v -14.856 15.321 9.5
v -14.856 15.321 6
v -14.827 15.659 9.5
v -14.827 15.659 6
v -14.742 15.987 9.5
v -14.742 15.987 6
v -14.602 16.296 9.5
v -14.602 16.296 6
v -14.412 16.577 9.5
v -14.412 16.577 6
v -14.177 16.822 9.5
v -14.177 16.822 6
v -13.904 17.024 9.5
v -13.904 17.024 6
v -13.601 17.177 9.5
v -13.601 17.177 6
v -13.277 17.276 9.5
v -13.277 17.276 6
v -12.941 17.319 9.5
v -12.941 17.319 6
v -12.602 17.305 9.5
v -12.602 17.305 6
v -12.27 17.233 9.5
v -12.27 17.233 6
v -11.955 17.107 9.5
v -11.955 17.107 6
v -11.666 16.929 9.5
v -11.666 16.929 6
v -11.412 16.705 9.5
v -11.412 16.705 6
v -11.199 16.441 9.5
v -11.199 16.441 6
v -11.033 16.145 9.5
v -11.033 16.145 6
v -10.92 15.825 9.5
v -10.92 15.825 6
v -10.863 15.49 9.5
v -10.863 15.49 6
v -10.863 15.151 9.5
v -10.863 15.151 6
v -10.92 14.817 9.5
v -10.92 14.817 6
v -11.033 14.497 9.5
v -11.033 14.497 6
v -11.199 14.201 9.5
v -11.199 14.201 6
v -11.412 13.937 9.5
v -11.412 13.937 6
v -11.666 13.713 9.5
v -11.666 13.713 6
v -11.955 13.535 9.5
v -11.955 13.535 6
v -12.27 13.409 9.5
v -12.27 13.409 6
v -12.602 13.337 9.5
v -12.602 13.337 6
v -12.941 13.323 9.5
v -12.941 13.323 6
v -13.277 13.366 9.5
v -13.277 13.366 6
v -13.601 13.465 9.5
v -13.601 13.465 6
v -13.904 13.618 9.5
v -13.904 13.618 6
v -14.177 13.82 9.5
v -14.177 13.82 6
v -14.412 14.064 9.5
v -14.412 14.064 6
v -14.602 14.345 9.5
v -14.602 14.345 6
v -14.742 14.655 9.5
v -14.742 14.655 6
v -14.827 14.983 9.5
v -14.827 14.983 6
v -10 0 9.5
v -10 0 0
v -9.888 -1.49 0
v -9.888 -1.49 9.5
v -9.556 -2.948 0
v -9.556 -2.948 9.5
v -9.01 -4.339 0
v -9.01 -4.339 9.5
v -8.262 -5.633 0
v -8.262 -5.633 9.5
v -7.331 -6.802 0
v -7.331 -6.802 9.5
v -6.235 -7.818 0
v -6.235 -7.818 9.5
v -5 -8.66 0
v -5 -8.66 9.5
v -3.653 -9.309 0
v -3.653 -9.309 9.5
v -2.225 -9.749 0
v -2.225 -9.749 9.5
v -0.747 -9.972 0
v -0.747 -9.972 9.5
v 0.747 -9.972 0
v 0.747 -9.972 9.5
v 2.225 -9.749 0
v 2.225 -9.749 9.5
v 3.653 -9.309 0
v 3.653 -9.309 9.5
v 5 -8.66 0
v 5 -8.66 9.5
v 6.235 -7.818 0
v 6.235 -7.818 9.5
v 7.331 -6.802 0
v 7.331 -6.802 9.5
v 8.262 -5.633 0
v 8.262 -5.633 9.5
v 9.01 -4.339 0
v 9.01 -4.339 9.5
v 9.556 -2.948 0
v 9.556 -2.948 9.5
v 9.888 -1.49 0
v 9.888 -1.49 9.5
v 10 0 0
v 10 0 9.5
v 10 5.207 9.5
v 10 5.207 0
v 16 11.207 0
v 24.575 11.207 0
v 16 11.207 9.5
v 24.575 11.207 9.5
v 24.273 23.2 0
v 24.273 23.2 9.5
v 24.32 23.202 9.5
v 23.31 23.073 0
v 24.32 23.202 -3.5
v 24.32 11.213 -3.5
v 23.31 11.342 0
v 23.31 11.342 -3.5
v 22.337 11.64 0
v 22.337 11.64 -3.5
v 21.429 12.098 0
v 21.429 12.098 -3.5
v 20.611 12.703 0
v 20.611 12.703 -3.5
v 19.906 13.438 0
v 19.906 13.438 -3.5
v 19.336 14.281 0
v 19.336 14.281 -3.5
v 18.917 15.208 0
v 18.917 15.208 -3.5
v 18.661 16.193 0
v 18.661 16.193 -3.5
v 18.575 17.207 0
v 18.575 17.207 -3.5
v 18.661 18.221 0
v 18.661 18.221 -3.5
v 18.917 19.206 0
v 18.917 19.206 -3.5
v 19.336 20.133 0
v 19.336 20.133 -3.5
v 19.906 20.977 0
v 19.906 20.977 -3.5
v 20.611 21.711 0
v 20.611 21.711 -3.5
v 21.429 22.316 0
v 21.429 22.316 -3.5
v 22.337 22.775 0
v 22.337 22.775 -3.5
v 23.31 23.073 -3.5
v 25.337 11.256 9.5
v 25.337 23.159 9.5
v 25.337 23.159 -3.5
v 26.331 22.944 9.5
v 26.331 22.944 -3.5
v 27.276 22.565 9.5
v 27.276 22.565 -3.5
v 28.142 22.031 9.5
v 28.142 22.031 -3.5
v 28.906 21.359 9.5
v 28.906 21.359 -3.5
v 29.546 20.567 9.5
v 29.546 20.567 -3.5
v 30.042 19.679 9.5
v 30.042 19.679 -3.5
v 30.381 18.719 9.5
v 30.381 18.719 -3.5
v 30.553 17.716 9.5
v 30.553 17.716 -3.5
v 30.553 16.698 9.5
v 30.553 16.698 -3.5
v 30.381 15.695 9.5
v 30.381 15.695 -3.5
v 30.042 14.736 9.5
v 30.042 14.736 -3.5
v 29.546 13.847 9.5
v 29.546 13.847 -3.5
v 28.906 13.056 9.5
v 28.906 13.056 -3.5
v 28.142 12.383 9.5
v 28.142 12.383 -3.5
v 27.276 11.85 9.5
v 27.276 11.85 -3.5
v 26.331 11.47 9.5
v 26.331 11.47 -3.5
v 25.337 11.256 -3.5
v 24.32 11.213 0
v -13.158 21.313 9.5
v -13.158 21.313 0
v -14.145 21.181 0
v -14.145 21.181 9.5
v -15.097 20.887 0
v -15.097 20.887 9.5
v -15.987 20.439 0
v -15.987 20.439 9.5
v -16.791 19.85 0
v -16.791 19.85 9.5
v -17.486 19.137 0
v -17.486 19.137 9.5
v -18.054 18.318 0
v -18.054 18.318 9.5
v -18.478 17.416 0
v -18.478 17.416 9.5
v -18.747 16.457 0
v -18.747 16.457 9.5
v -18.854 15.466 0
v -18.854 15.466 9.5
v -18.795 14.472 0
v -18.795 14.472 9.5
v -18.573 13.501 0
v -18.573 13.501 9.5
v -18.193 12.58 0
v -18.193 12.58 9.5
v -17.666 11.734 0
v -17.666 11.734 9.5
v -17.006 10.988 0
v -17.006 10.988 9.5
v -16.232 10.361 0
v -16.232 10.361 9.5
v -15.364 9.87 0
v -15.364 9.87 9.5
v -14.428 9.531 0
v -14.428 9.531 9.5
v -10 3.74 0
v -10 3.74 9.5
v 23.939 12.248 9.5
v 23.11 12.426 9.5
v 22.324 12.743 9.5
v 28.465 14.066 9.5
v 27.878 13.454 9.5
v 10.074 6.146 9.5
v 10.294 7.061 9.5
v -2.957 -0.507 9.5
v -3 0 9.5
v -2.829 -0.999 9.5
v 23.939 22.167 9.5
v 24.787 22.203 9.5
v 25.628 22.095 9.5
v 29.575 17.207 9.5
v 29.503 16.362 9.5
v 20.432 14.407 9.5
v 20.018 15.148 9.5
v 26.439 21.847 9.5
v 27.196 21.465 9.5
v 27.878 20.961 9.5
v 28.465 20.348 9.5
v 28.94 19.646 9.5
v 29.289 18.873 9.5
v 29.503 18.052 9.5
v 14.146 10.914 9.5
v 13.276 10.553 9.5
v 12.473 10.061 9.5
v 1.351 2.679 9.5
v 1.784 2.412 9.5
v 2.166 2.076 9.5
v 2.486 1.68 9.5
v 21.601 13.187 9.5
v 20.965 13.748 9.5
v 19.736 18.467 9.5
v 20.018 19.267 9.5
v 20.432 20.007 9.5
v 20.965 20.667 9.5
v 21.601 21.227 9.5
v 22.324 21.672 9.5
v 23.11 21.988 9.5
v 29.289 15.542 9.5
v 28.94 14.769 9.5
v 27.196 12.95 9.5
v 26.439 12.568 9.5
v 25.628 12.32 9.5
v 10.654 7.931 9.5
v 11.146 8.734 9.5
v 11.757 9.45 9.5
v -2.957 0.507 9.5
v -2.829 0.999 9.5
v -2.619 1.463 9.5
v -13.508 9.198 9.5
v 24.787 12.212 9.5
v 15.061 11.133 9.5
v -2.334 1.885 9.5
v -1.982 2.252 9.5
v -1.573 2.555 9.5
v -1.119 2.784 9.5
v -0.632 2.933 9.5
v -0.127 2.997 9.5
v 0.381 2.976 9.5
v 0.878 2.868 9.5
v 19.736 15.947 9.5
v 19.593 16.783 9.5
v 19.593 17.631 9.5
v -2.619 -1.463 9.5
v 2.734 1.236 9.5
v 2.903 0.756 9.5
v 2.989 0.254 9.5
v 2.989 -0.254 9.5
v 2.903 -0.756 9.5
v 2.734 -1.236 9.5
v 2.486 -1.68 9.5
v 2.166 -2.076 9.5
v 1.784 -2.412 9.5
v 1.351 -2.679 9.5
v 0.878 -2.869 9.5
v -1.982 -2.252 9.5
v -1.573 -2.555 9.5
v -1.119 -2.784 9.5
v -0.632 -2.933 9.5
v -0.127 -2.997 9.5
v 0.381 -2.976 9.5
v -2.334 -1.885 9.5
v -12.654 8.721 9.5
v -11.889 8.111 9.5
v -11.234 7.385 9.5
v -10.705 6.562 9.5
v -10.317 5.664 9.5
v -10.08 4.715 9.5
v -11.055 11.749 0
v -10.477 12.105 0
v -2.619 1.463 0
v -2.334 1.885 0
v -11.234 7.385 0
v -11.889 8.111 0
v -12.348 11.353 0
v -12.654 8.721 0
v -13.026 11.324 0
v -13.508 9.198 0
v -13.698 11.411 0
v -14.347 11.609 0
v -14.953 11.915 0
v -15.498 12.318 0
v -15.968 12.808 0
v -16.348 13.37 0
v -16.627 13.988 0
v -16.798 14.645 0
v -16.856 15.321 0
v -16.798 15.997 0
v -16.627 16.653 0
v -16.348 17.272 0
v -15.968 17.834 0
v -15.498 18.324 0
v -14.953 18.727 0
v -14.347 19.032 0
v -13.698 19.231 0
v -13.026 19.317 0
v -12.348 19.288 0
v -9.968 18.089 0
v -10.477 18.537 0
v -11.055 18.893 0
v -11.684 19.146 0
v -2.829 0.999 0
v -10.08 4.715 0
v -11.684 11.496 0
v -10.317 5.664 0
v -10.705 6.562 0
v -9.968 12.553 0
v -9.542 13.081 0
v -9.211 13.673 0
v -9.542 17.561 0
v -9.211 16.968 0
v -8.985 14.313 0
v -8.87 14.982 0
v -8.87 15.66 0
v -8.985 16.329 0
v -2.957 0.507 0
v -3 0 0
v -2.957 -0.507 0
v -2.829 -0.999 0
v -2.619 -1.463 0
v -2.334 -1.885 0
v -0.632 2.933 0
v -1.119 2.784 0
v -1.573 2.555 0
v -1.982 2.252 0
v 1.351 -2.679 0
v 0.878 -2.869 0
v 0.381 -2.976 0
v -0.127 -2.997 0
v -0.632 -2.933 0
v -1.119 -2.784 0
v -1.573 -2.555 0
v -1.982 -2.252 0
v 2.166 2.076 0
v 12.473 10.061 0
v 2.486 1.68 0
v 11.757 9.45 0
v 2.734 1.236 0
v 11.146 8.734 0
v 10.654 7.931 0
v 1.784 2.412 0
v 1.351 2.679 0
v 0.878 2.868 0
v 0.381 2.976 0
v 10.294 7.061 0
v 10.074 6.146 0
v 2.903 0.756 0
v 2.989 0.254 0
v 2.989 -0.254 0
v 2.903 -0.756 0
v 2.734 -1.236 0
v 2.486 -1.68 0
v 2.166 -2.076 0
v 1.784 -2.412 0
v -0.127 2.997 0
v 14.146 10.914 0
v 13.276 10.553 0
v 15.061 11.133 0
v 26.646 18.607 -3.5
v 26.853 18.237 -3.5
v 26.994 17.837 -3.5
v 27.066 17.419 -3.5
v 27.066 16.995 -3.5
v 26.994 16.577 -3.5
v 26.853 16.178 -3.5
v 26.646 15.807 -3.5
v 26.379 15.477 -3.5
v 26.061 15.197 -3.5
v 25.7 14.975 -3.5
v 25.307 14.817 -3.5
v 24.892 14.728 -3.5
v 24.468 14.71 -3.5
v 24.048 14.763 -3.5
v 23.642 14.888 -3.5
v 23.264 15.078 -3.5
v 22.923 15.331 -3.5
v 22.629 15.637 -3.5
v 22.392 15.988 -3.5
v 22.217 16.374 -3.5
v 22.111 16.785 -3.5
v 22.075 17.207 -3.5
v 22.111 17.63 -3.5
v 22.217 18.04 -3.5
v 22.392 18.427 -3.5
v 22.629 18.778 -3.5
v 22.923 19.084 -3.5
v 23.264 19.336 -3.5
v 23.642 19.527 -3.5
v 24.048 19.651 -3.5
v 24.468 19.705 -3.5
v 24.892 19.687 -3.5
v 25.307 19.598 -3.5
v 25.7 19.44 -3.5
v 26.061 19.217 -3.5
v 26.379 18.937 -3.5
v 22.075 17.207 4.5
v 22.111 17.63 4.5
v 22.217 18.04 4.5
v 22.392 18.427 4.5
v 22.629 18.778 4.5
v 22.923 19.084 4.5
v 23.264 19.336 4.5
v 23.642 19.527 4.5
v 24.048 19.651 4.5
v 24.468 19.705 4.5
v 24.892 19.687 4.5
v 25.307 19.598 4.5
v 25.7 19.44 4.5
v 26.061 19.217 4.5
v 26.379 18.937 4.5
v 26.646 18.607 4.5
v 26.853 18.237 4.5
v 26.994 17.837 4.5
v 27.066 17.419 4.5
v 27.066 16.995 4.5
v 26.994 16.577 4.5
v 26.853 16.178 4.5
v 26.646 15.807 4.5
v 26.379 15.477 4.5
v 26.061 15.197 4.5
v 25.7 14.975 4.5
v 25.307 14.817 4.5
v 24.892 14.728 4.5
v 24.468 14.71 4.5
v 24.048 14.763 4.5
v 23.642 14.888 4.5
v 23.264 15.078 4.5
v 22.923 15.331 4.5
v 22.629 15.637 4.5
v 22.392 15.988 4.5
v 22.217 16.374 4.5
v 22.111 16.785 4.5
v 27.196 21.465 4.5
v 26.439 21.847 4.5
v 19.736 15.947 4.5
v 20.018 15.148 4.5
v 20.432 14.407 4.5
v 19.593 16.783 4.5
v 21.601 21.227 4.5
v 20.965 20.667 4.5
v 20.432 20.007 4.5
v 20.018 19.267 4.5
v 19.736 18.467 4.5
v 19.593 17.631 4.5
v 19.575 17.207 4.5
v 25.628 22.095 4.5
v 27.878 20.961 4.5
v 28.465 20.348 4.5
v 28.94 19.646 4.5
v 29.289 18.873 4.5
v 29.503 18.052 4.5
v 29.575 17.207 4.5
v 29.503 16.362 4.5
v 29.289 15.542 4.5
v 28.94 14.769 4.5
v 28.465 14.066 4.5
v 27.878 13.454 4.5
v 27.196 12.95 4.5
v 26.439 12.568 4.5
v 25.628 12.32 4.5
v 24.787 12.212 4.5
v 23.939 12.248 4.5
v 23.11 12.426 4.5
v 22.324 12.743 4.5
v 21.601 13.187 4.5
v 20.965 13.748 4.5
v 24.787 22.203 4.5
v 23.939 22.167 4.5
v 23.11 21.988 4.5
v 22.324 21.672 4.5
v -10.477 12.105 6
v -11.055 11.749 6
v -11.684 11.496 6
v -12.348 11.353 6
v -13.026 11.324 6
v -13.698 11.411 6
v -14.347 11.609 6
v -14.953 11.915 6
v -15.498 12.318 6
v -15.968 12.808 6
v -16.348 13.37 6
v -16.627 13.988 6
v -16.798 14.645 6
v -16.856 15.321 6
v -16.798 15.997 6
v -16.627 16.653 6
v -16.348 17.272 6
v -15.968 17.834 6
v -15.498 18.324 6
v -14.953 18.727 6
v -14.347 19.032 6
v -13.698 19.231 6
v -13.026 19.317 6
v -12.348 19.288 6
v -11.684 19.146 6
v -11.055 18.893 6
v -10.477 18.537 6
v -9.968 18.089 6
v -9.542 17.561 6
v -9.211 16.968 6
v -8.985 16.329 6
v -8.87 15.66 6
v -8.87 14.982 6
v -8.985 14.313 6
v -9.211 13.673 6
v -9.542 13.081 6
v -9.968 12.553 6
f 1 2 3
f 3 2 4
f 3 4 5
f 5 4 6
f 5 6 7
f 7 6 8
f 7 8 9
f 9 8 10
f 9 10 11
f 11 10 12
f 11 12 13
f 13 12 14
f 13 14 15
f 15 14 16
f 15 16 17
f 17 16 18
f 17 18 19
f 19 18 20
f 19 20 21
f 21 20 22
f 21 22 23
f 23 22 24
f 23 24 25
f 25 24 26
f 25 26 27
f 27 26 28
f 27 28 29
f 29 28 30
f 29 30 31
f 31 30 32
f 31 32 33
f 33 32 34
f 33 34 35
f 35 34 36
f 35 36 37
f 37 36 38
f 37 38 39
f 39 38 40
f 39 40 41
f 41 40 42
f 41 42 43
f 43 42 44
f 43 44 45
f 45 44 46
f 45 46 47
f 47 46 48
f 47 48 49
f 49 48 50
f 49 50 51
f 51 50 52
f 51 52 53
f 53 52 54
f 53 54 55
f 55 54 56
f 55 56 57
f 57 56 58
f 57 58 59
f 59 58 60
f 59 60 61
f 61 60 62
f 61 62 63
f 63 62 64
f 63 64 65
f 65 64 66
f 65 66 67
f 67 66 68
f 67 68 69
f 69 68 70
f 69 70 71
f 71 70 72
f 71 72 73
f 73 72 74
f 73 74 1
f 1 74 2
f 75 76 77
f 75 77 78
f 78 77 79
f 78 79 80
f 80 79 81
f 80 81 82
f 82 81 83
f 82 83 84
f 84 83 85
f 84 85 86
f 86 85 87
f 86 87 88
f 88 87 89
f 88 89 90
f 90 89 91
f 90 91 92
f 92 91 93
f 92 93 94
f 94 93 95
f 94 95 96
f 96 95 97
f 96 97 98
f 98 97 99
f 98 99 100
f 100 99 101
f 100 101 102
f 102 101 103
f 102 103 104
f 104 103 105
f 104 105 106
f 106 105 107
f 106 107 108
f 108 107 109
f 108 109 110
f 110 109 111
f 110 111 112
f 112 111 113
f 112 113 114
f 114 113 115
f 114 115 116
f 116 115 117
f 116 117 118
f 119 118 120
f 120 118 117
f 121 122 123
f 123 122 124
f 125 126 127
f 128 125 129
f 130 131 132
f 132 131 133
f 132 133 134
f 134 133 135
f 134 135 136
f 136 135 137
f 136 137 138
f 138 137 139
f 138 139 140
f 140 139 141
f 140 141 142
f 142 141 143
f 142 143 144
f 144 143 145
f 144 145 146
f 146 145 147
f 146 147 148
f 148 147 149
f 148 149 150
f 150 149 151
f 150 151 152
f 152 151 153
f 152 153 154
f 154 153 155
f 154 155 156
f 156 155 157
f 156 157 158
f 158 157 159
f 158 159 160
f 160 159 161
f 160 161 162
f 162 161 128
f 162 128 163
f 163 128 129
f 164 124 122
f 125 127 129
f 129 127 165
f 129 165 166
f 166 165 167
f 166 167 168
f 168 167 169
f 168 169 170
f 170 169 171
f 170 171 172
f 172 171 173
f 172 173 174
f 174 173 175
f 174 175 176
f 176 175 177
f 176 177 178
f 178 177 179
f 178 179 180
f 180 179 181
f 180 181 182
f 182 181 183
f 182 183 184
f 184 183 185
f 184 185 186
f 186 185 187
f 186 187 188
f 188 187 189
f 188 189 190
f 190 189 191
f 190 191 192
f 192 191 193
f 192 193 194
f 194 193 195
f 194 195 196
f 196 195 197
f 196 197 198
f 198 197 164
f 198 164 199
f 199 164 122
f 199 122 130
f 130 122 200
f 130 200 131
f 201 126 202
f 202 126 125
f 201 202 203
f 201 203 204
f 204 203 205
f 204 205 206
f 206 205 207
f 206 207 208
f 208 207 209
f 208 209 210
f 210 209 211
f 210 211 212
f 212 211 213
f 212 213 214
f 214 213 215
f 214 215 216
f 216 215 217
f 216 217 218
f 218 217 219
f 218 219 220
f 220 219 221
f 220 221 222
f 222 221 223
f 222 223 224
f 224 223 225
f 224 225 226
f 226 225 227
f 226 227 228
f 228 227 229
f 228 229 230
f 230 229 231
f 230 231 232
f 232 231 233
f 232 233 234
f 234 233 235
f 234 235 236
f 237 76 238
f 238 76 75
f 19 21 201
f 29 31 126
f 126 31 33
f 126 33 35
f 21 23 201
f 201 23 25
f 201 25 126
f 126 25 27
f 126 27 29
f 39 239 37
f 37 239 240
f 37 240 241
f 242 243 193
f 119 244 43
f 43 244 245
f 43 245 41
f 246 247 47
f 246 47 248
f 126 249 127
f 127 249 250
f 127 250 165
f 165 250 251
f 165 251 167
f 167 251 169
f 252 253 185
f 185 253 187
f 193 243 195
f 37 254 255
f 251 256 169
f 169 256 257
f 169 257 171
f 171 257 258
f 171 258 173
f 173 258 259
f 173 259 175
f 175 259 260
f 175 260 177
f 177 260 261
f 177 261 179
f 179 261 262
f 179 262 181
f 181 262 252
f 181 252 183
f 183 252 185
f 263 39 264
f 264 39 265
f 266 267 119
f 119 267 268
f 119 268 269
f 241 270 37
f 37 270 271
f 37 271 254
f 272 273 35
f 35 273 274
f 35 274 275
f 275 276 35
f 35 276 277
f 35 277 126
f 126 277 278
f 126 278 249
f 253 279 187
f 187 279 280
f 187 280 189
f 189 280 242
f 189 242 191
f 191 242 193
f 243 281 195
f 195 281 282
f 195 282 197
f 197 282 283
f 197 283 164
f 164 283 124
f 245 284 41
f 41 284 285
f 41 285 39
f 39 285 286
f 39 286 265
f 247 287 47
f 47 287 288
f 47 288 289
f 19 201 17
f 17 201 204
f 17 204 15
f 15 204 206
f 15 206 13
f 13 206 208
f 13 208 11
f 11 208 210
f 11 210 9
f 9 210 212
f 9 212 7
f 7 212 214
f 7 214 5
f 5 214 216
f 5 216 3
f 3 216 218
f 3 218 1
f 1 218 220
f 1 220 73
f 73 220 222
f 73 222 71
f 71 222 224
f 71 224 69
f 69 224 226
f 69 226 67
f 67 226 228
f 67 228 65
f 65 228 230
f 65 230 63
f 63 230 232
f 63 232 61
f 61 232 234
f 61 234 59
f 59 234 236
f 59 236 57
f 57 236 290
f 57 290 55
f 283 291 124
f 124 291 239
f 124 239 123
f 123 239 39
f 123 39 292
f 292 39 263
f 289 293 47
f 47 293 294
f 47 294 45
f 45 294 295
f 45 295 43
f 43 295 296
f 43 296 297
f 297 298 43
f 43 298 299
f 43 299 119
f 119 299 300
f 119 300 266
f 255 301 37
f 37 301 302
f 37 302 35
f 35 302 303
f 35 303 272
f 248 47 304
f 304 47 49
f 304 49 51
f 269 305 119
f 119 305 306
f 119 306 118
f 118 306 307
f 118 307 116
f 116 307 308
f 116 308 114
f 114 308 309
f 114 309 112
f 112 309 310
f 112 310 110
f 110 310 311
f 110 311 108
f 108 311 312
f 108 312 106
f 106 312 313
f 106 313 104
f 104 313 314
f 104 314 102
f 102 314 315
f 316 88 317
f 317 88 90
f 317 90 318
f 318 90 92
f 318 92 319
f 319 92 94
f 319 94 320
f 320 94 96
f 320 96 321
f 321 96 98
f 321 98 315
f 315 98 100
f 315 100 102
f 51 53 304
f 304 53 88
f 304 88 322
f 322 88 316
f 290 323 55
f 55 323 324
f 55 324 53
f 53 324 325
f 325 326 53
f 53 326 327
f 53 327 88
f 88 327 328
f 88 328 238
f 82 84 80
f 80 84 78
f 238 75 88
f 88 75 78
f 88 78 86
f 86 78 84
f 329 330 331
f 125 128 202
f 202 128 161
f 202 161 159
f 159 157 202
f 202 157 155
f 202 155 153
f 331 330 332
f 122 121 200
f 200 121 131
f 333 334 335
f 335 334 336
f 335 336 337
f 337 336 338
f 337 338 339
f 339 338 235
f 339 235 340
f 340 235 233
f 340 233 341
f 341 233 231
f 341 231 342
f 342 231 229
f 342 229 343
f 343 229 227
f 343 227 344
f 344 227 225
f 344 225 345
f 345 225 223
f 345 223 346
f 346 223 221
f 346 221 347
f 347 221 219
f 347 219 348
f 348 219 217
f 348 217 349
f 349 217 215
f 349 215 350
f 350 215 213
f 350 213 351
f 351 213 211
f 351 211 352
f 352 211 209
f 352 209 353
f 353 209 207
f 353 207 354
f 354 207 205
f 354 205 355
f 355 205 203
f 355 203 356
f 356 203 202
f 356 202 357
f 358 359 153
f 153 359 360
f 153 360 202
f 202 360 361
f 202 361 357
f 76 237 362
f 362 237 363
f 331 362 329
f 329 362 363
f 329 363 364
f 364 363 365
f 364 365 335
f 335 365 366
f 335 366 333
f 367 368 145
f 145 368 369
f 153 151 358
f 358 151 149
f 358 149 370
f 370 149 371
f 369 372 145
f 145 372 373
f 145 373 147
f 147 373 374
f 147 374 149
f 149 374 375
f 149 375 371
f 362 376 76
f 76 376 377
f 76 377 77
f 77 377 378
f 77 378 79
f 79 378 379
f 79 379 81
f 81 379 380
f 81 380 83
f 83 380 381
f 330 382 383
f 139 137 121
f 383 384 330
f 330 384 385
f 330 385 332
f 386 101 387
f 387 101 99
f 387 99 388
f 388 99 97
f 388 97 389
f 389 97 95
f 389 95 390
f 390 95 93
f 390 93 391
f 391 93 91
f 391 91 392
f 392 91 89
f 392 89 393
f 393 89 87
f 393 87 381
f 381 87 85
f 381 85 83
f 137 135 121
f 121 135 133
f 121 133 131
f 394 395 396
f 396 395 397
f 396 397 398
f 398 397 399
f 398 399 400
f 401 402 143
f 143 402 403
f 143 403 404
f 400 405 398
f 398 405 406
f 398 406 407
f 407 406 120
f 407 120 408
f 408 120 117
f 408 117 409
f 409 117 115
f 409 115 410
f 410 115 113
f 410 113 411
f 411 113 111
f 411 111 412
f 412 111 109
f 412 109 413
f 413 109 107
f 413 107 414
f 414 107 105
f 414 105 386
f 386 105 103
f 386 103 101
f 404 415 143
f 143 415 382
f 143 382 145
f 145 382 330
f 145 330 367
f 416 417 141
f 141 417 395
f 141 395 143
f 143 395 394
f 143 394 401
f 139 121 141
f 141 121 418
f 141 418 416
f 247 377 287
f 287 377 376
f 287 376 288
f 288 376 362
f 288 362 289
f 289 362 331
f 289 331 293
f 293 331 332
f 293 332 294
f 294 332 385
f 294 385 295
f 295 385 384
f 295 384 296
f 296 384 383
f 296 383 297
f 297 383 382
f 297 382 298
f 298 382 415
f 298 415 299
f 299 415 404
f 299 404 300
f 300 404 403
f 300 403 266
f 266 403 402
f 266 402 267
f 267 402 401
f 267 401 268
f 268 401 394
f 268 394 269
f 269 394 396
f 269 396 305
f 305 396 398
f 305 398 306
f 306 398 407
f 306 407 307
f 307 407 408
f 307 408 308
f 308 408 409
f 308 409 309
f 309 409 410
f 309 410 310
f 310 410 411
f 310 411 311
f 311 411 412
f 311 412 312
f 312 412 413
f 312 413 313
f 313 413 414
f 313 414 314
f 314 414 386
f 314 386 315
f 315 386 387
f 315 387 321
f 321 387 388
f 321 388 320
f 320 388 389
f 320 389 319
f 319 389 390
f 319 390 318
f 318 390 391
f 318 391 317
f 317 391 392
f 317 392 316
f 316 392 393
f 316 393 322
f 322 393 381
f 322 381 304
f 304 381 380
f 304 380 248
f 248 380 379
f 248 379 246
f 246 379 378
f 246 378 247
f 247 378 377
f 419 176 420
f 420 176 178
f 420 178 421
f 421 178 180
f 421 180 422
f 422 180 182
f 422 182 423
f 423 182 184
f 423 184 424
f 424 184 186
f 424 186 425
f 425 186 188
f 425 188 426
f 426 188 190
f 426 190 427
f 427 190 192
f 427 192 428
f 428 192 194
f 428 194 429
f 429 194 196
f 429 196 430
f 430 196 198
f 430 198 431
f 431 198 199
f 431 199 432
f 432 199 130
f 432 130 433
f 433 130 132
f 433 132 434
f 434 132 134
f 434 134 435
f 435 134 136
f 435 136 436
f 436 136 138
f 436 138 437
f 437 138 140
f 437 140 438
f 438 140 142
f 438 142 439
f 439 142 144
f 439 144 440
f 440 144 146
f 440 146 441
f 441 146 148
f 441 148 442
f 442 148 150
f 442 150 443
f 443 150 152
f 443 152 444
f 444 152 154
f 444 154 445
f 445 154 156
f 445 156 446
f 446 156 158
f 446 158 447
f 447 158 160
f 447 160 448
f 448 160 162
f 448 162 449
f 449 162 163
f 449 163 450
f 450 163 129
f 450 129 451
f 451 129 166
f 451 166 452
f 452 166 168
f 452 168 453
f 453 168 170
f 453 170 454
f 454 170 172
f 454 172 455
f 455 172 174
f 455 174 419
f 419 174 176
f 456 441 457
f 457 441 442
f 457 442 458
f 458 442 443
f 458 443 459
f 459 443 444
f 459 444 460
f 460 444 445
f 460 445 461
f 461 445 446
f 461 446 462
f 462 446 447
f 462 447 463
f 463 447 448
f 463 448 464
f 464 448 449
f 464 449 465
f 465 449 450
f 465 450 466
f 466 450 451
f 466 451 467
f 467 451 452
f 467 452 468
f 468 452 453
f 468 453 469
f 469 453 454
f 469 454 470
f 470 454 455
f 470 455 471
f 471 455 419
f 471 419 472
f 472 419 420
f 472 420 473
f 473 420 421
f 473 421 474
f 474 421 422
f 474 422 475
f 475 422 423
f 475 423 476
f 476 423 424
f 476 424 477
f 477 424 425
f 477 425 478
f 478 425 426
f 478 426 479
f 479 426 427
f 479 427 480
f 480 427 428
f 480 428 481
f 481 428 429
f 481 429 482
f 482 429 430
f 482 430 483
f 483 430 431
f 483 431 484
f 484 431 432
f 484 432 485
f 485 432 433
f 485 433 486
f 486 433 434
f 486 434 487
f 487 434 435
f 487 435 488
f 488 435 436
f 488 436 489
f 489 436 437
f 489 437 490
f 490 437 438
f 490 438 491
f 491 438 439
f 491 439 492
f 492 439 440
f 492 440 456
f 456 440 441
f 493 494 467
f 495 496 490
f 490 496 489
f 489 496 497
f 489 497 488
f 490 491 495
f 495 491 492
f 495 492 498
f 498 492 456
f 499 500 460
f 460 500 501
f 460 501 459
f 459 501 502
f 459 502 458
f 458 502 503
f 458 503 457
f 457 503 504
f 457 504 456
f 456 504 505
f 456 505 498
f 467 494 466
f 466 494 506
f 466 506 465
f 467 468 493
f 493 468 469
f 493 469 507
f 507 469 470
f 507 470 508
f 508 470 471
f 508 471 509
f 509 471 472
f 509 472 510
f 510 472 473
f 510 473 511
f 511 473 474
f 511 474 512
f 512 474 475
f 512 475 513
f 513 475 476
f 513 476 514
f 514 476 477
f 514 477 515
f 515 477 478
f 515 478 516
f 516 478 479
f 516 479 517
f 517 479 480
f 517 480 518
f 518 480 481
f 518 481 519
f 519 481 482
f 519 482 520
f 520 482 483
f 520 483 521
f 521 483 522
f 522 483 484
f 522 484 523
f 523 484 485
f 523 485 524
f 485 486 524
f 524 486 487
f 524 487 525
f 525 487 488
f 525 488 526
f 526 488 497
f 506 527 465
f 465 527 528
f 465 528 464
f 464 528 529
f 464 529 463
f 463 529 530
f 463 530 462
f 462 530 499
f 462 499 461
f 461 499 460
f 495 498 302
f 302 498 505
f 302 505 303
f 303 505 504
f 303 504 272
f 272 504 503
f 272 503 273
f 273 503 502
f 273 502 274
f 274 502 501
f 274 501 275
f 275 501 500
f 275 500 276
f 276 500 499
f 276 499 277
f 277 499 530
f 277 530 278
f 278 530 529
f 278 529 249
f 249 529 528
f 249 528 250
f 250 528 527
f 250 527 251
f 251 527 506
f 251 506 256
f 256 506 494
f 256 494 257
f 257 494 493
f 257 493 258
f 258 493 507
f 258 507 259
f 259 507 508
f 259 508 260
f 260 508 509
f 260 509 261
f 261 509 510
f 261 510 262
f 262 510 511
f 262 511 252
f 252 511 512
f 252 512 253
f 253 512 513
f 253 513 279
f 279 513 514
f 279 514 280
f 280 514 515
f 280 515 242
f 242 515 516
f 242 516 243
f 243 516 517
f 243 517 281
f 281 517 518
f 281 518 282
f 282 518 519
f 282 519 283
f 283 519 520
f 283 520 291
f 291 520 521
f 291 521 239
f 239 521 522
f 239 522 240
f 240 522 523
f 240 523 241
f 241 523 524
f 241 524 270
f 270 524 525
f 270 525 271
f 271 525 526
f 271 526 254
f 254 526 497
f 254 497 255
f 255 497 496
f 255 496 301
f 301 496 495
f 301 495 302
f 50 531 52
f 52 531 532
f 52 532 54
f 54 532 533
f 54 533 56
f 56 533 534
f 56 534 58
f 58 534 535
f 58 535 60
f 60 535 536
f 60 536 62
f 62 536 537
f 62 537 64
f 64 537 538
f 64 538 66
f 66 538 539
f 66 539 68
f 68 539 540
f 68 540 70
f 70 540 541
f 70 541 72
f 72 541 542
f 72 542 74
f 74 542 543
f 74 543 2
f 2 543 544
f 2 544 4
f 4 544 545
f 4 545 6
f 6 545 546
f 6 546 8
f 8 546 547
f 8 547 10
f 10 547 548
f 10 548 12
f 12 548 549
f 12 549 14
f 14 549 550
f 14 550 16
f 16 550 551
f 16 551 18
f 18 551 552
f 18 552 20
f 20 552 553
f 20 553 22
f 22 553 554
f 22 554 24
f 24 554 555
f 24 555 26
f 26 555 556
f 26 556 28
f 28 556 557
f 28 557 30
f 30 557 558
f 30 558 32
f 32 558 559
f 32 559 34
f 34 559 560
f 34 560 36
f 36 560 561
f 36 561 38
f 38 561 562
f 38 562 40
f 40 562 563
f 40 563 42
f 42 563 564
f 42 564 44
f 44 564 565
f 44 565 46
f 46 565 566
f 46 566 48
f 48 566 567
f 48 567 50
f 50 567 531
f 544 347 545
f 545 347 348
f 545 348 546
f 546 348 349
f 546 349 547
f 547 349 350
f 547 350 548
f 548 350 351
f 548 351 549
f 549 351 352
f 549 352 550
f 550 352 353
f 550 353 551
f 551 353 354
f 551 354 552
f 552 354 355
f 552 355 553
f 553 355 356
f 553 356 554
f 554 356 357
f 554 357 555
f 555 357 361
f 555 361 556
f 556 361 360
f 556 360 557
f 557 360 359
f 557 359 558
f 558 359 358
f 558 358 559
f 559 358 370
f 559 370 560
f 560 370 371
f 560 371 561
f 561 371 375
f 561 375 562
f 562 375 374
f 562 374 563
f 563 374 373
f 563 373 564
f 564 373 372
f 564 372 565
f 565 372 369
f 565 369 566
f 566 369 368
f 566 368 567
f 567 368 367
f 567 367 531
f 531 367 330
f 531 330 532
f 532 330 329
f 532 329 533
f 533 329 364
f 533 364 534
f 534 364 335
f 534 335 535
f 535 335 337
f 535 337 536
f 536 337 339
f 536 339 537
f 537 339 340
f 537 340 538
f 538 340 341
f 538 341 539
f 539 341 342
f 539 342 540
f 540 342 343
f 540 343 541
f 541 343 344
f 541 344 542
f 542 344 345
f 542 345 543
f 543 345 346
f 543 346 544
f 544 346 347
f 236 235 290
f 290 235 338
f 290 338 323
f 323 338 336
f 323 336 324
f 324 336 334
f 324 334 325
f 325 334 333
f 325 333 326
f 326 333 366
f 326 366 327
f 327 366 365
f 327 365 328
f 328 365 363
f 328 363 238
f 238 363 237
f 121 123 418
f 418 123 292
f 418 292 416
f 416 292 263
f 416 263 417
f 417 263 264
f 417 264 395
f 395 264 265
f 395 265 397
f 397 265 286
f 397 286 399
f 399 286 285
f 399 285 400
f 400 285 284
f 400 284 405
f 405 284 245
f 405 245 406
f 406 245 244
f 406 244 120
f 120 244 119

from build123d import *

# Parameters (mm, degrees)
EXTRUDE_1_DEPTH     = 9.5
SKETCH_2_R          = 3
CUT_EXTRUDE_1_DEPTH = 40.542790152
EXTRUDE_START       = 3.5
SKETCH_3_R          = 6
EXTRUDE_2_DEPTH     = 3.5
SKETCH_4_R          = 2.5
CUT_EXTRUDE_2_DEPTH = 41.526315562
SKETCH_5_R          = 5
CUT_EXTRUDE_3_DEPTH = 5
SKETCH_6_R          = 2
CUT_EXTRUDE_4_DEPTH = 40.542790152
SKETCH_8_R          = 4
CUT_EXTRUDE_5_DEPTH = 6
FILLET_1_R          = 6


with BuildPart() as part:
    # 草图1 → 凸台-拉伸1 (new body)
    with BuildSketch(Plane.XY):
        with BuildLine():
            Line((-10, 0), (-10, 9.320888862))
            Line((-10, 9.320888862), (-12.855752194, 9.320888862))
            ThreePointArc((-12.855752194, 9.320888862), (-18.853850562, 15.169839333), (-13.157755506, 21.313283542))
            Line((-13.157755506, 21.313283542), (24.272558016, 23.19968777))
            ThreePointArc((24.272558016, 23.19968777), (30.572659697, 17.35834262), (24.574561329, 11.207293091))
            Line((24.574561329, 11.207293091), (10, 11.207293091))
            Line((10, 11.207293091), (10, 0))
            ThreePointArc((10, 0), (0, -10), (-10, 0))
        make_face()
    extrude(amount=EXTRUDE_1_DEPTH)

    # 草图2 → 切除-拉伸1 (cut, through all)
    with BuildSketch(Plane(origin=(0, 0, 0), x_dir=(-1, 0, 0), z_dir=(0, 0, -1))):
        Circle(SKETCH_2_R)
    extrude(amount=-CUT_EXTRUDE_1_DEPTH, mode=Mode.SUBTRACT)

    # 草图3 → 凸台-拉伸2 (add)
    with BuildSketch(Plane(origin=(0, 0, 0), x_dir=(-1, 0, 0), z_dir=(0, 0, -1)).offset(EXTRUDE_START)):
        with Locations((-24.574561329, 17.207293091)):
            Circle(SKETCH_3_R)
    extrude(amount=-EXTRUDE_2_DEPTH)

    # 草图4 → 切除-拉伸2 (cut, through all)
    with BuildSketch(Plane(origin=(0, 0, -3.5), x_dir=(-1, 0, 0), z_dir=(0, 0, -1))):
        with Locations((-24.574561329, 17.207293091)):
            Circle(SKETCH_4_R)
    extrude(amount=-CUT_EXTRUDE_2_DEPTH, mode=Mode.SUBTRACT)

    # 草图5 → 切除-拉伸3 (cut)
    with BuildSketch(Plane.XY.offset(9.5)):
        with Locations((24.574561329, 17.207293091)):
            Circle(SKETCH_5_R)
    extrude(amount=-CUT_EXTRUDE_3_DEPTH, mode=Mode.SUBTRACT)

    # 草图6 → 切除-拉伸4 (cut, through all)
    with BuildSketch(Plane(origin=(0, 0, 0), x_dir=(-1, 0, 0), z_dir=(0, 0, -1))):
        with Locations((12.855752194, 15.320888862)):
            Circle(SKETCH_6_R)
    extrude(amount=-CUT_EXTRUDE_4_DEPTH, mode=Mode.SUBTRACT)

    # 草图8 → 切除-拉伸5 (cut)
    with BuildSketch(Plane(origin=(0, 0, 0), x_dir=(-1, 0, 0), z_dir=(0, 0, -1))):
        with Locations((12.855752194, 15.320888862)):
            Circle(SKETCH_8_R)
    extrude(amount=-CUT_EXTRUDE_5_DEPTH, mode=Mode.SUBTRACT)

    # 圆角1
    fillet_1_edges = [part.edges().sort_by_distance(p)[0] for p in [
        (-10, 9.320888862, 4.75),
        (10, 11.207293091, 4.75),
    ]]
    fillet(fillet_1_edges, radius=FILLET_1_R)


solid = part.part
